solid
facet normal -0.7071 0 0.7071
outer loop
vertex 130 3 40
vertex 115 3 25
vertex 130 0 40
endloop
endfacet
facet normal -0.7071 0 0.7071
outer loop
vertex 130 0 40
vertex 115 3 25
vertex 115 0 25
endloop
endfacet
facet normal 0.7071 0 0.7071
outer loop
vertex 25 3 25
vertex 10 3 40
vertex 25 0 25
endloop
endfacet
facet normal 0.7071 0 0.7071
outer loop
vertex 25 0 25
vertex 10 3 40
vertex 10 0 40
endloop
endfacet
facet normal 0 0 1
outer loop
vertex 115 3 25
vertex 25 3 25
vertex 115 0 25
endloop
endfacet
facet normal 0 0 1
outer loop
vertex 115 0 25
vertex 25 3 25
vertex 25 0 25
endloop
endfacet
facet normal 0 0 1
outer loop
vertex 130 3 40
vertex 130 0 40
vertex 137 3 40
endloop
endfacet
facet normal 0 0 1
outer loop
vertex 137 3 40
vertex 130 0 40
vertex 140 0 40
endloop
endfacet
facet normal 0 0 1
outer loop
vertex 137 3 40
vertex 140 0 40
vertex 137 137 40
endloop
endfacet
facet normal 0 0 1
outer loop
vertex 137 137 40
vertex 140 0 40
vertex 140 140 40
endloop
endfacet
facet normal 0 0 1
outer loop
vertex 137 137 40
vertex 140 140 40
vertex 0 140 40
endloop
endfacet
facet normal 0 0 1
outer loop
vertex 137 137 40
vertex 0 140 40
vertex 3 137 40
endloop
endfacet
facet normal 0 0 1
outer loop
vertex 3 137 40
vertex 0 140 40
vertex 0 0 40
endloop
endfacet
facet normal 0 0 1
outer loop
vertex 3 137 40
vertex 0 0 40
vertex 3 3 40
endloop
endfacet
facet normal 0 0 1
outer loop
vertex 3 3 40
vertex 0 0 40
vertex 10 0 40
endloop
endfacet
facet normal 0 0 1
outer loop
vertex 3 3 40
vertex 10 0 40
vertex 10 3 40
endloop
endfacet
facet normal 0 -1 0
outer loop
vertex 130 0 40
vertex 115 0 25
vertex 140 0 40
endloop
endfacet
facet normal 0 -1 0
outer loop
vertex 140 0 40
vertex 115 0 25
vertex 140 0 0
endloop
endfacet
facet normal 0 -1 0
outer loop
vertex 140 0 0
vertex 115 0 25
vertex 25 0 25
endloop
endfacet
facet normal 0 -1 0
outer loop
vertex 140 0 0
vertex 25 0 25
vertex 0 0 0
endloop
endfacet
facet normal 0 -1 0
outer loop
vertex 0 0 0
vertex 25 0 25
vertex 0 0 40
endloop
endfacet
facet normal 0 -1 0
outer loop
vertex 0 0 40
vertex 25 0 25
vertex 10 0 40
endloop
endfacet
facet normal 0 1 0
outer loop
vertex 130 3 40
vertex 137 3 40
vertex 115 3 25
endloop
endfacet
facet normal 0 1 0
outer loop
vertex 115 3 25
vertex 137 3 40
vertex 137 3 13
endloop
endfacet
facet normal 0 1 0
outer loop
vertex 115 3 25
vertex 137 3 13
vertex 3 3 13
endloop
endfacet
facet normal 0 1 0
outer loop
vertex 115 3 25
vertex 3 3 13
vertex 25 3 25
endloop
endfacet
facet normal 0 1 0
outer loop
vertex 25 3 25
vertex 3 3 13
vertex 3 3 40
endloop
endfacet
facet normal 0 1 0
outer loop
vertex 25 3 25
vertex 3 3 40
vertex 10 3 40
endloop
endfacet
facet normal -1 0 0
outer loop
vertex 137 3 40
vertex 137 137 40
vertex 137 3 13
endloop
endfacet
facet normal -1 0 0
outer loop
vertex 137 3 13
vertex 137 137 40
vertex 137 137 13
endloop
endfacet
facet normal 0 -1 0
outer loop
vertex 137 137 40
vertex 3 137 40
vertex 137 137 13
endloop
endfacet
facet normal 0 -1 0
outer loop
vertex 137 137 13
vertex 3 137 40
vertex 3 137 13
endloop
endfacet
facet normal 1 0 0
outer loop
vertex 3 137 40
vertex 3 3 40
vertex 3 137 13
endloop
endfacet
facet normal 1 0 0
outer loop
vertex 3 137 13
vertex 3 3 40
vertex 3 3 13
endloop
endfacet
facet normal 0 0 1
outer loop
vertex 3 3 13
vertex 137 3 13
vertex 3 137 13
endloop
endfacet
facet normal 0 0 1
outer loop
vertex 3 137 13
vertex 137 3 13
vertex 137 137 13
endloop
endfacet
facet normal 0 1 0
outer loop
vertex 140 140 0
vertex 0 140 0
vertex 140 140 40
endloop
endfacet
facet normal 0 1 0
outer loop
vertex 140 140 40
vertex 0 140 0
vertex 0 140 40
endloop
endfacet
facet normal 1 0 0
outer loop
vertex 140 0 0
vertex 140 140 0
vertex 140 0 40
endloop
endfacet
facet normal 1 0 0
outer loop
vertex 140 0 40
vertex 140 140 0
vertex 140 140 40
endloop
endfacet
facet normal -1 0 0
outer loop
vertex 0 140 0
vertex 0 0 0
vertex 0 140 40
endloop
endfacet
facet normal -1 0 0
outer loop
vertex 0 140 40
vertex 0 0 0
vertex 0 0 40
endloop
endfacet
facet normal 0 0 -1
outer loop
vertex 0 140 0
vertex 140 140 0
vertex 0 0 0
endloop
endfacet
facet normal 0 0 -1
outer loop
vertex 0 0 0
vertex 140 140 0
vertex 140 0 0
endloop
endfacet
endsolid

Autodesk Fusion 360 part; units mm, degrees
sketch "Sketch1" plane through (0, 0, 0) normal (0, 0, 1) x (1, 0, 0)
  line L0 (0, 0) -> (140, 0)
  line L1 (140, 0) -> (140, 140)
  line L2 (140, 140) -> (0, 140)
  line L3 (0, 140) -> (0, 0)
  dimension "d1" = 140
  dimension "d2" = 140
extrude "Extrude1" add sketch "Sketch1" along normal blind 40
sketch "Sketch2" plane through (0, 0, 40) normal (0, 0, 1) x (-1, 0, 0)
  line L0 (0, -140) -> (0, 0)
  line L1 (0, 0) -> (-140, 0)
  line L2 (-140, 0) -> (-140, -140)
  line L3 (-140, -140) -> (0, -140)
  line L4 (0, 0) -> (-3, 0)
  line L5 (-3, 0) -> (-3, -3)
  line L6 (-3, -3) -> (0, -3)
  line L7 (0, -3) -> (0, 0)
  line L8 (-140, -140) -> (-137, -140)
  line L9 (-137, -140) -> (-137, -137)
  line L10 (-137, -137) -> (-140, -137)
  line L11 (-140, -137) -> (-140, -140)
  line L12 (-3, -3) -> (-137, -3)
  line L13 (-137, -3) -> (-137, -137)
  line L14 (-137, -137) -> (-3, -137)
  line L15 (-3, -137) -> (-3, -3)
  dimension "d5" = 3
  dimension "d6" = 3
  dimension "d7" = 3
  dimension "d8" = 3
extrude "Extrude6" cut sketch "Sketch2" against normal blind 27 contours L12 L13 L14 L15
sketch "Sketch5" plane through (0, 0, 0) normal (0, -1, 0) x (1, 0, 0)
  line L0 (0, 0) -> (140, 0)
  line L1 (140, 0) -> (140, 40)
  line L2 (140, 40) -> (0, 40)
  line L3 (0, 40) -> (0, 0)
  line L4 (10, 40) -> (25, 25)
  line L5 (25, 25) -> (115, 25)
  line L6 (115, 25) -> (130, 40)
extrude "Extrude7" cut sketch "Sketch5" against normal blind 5 contours L2 L4 L5 L6
